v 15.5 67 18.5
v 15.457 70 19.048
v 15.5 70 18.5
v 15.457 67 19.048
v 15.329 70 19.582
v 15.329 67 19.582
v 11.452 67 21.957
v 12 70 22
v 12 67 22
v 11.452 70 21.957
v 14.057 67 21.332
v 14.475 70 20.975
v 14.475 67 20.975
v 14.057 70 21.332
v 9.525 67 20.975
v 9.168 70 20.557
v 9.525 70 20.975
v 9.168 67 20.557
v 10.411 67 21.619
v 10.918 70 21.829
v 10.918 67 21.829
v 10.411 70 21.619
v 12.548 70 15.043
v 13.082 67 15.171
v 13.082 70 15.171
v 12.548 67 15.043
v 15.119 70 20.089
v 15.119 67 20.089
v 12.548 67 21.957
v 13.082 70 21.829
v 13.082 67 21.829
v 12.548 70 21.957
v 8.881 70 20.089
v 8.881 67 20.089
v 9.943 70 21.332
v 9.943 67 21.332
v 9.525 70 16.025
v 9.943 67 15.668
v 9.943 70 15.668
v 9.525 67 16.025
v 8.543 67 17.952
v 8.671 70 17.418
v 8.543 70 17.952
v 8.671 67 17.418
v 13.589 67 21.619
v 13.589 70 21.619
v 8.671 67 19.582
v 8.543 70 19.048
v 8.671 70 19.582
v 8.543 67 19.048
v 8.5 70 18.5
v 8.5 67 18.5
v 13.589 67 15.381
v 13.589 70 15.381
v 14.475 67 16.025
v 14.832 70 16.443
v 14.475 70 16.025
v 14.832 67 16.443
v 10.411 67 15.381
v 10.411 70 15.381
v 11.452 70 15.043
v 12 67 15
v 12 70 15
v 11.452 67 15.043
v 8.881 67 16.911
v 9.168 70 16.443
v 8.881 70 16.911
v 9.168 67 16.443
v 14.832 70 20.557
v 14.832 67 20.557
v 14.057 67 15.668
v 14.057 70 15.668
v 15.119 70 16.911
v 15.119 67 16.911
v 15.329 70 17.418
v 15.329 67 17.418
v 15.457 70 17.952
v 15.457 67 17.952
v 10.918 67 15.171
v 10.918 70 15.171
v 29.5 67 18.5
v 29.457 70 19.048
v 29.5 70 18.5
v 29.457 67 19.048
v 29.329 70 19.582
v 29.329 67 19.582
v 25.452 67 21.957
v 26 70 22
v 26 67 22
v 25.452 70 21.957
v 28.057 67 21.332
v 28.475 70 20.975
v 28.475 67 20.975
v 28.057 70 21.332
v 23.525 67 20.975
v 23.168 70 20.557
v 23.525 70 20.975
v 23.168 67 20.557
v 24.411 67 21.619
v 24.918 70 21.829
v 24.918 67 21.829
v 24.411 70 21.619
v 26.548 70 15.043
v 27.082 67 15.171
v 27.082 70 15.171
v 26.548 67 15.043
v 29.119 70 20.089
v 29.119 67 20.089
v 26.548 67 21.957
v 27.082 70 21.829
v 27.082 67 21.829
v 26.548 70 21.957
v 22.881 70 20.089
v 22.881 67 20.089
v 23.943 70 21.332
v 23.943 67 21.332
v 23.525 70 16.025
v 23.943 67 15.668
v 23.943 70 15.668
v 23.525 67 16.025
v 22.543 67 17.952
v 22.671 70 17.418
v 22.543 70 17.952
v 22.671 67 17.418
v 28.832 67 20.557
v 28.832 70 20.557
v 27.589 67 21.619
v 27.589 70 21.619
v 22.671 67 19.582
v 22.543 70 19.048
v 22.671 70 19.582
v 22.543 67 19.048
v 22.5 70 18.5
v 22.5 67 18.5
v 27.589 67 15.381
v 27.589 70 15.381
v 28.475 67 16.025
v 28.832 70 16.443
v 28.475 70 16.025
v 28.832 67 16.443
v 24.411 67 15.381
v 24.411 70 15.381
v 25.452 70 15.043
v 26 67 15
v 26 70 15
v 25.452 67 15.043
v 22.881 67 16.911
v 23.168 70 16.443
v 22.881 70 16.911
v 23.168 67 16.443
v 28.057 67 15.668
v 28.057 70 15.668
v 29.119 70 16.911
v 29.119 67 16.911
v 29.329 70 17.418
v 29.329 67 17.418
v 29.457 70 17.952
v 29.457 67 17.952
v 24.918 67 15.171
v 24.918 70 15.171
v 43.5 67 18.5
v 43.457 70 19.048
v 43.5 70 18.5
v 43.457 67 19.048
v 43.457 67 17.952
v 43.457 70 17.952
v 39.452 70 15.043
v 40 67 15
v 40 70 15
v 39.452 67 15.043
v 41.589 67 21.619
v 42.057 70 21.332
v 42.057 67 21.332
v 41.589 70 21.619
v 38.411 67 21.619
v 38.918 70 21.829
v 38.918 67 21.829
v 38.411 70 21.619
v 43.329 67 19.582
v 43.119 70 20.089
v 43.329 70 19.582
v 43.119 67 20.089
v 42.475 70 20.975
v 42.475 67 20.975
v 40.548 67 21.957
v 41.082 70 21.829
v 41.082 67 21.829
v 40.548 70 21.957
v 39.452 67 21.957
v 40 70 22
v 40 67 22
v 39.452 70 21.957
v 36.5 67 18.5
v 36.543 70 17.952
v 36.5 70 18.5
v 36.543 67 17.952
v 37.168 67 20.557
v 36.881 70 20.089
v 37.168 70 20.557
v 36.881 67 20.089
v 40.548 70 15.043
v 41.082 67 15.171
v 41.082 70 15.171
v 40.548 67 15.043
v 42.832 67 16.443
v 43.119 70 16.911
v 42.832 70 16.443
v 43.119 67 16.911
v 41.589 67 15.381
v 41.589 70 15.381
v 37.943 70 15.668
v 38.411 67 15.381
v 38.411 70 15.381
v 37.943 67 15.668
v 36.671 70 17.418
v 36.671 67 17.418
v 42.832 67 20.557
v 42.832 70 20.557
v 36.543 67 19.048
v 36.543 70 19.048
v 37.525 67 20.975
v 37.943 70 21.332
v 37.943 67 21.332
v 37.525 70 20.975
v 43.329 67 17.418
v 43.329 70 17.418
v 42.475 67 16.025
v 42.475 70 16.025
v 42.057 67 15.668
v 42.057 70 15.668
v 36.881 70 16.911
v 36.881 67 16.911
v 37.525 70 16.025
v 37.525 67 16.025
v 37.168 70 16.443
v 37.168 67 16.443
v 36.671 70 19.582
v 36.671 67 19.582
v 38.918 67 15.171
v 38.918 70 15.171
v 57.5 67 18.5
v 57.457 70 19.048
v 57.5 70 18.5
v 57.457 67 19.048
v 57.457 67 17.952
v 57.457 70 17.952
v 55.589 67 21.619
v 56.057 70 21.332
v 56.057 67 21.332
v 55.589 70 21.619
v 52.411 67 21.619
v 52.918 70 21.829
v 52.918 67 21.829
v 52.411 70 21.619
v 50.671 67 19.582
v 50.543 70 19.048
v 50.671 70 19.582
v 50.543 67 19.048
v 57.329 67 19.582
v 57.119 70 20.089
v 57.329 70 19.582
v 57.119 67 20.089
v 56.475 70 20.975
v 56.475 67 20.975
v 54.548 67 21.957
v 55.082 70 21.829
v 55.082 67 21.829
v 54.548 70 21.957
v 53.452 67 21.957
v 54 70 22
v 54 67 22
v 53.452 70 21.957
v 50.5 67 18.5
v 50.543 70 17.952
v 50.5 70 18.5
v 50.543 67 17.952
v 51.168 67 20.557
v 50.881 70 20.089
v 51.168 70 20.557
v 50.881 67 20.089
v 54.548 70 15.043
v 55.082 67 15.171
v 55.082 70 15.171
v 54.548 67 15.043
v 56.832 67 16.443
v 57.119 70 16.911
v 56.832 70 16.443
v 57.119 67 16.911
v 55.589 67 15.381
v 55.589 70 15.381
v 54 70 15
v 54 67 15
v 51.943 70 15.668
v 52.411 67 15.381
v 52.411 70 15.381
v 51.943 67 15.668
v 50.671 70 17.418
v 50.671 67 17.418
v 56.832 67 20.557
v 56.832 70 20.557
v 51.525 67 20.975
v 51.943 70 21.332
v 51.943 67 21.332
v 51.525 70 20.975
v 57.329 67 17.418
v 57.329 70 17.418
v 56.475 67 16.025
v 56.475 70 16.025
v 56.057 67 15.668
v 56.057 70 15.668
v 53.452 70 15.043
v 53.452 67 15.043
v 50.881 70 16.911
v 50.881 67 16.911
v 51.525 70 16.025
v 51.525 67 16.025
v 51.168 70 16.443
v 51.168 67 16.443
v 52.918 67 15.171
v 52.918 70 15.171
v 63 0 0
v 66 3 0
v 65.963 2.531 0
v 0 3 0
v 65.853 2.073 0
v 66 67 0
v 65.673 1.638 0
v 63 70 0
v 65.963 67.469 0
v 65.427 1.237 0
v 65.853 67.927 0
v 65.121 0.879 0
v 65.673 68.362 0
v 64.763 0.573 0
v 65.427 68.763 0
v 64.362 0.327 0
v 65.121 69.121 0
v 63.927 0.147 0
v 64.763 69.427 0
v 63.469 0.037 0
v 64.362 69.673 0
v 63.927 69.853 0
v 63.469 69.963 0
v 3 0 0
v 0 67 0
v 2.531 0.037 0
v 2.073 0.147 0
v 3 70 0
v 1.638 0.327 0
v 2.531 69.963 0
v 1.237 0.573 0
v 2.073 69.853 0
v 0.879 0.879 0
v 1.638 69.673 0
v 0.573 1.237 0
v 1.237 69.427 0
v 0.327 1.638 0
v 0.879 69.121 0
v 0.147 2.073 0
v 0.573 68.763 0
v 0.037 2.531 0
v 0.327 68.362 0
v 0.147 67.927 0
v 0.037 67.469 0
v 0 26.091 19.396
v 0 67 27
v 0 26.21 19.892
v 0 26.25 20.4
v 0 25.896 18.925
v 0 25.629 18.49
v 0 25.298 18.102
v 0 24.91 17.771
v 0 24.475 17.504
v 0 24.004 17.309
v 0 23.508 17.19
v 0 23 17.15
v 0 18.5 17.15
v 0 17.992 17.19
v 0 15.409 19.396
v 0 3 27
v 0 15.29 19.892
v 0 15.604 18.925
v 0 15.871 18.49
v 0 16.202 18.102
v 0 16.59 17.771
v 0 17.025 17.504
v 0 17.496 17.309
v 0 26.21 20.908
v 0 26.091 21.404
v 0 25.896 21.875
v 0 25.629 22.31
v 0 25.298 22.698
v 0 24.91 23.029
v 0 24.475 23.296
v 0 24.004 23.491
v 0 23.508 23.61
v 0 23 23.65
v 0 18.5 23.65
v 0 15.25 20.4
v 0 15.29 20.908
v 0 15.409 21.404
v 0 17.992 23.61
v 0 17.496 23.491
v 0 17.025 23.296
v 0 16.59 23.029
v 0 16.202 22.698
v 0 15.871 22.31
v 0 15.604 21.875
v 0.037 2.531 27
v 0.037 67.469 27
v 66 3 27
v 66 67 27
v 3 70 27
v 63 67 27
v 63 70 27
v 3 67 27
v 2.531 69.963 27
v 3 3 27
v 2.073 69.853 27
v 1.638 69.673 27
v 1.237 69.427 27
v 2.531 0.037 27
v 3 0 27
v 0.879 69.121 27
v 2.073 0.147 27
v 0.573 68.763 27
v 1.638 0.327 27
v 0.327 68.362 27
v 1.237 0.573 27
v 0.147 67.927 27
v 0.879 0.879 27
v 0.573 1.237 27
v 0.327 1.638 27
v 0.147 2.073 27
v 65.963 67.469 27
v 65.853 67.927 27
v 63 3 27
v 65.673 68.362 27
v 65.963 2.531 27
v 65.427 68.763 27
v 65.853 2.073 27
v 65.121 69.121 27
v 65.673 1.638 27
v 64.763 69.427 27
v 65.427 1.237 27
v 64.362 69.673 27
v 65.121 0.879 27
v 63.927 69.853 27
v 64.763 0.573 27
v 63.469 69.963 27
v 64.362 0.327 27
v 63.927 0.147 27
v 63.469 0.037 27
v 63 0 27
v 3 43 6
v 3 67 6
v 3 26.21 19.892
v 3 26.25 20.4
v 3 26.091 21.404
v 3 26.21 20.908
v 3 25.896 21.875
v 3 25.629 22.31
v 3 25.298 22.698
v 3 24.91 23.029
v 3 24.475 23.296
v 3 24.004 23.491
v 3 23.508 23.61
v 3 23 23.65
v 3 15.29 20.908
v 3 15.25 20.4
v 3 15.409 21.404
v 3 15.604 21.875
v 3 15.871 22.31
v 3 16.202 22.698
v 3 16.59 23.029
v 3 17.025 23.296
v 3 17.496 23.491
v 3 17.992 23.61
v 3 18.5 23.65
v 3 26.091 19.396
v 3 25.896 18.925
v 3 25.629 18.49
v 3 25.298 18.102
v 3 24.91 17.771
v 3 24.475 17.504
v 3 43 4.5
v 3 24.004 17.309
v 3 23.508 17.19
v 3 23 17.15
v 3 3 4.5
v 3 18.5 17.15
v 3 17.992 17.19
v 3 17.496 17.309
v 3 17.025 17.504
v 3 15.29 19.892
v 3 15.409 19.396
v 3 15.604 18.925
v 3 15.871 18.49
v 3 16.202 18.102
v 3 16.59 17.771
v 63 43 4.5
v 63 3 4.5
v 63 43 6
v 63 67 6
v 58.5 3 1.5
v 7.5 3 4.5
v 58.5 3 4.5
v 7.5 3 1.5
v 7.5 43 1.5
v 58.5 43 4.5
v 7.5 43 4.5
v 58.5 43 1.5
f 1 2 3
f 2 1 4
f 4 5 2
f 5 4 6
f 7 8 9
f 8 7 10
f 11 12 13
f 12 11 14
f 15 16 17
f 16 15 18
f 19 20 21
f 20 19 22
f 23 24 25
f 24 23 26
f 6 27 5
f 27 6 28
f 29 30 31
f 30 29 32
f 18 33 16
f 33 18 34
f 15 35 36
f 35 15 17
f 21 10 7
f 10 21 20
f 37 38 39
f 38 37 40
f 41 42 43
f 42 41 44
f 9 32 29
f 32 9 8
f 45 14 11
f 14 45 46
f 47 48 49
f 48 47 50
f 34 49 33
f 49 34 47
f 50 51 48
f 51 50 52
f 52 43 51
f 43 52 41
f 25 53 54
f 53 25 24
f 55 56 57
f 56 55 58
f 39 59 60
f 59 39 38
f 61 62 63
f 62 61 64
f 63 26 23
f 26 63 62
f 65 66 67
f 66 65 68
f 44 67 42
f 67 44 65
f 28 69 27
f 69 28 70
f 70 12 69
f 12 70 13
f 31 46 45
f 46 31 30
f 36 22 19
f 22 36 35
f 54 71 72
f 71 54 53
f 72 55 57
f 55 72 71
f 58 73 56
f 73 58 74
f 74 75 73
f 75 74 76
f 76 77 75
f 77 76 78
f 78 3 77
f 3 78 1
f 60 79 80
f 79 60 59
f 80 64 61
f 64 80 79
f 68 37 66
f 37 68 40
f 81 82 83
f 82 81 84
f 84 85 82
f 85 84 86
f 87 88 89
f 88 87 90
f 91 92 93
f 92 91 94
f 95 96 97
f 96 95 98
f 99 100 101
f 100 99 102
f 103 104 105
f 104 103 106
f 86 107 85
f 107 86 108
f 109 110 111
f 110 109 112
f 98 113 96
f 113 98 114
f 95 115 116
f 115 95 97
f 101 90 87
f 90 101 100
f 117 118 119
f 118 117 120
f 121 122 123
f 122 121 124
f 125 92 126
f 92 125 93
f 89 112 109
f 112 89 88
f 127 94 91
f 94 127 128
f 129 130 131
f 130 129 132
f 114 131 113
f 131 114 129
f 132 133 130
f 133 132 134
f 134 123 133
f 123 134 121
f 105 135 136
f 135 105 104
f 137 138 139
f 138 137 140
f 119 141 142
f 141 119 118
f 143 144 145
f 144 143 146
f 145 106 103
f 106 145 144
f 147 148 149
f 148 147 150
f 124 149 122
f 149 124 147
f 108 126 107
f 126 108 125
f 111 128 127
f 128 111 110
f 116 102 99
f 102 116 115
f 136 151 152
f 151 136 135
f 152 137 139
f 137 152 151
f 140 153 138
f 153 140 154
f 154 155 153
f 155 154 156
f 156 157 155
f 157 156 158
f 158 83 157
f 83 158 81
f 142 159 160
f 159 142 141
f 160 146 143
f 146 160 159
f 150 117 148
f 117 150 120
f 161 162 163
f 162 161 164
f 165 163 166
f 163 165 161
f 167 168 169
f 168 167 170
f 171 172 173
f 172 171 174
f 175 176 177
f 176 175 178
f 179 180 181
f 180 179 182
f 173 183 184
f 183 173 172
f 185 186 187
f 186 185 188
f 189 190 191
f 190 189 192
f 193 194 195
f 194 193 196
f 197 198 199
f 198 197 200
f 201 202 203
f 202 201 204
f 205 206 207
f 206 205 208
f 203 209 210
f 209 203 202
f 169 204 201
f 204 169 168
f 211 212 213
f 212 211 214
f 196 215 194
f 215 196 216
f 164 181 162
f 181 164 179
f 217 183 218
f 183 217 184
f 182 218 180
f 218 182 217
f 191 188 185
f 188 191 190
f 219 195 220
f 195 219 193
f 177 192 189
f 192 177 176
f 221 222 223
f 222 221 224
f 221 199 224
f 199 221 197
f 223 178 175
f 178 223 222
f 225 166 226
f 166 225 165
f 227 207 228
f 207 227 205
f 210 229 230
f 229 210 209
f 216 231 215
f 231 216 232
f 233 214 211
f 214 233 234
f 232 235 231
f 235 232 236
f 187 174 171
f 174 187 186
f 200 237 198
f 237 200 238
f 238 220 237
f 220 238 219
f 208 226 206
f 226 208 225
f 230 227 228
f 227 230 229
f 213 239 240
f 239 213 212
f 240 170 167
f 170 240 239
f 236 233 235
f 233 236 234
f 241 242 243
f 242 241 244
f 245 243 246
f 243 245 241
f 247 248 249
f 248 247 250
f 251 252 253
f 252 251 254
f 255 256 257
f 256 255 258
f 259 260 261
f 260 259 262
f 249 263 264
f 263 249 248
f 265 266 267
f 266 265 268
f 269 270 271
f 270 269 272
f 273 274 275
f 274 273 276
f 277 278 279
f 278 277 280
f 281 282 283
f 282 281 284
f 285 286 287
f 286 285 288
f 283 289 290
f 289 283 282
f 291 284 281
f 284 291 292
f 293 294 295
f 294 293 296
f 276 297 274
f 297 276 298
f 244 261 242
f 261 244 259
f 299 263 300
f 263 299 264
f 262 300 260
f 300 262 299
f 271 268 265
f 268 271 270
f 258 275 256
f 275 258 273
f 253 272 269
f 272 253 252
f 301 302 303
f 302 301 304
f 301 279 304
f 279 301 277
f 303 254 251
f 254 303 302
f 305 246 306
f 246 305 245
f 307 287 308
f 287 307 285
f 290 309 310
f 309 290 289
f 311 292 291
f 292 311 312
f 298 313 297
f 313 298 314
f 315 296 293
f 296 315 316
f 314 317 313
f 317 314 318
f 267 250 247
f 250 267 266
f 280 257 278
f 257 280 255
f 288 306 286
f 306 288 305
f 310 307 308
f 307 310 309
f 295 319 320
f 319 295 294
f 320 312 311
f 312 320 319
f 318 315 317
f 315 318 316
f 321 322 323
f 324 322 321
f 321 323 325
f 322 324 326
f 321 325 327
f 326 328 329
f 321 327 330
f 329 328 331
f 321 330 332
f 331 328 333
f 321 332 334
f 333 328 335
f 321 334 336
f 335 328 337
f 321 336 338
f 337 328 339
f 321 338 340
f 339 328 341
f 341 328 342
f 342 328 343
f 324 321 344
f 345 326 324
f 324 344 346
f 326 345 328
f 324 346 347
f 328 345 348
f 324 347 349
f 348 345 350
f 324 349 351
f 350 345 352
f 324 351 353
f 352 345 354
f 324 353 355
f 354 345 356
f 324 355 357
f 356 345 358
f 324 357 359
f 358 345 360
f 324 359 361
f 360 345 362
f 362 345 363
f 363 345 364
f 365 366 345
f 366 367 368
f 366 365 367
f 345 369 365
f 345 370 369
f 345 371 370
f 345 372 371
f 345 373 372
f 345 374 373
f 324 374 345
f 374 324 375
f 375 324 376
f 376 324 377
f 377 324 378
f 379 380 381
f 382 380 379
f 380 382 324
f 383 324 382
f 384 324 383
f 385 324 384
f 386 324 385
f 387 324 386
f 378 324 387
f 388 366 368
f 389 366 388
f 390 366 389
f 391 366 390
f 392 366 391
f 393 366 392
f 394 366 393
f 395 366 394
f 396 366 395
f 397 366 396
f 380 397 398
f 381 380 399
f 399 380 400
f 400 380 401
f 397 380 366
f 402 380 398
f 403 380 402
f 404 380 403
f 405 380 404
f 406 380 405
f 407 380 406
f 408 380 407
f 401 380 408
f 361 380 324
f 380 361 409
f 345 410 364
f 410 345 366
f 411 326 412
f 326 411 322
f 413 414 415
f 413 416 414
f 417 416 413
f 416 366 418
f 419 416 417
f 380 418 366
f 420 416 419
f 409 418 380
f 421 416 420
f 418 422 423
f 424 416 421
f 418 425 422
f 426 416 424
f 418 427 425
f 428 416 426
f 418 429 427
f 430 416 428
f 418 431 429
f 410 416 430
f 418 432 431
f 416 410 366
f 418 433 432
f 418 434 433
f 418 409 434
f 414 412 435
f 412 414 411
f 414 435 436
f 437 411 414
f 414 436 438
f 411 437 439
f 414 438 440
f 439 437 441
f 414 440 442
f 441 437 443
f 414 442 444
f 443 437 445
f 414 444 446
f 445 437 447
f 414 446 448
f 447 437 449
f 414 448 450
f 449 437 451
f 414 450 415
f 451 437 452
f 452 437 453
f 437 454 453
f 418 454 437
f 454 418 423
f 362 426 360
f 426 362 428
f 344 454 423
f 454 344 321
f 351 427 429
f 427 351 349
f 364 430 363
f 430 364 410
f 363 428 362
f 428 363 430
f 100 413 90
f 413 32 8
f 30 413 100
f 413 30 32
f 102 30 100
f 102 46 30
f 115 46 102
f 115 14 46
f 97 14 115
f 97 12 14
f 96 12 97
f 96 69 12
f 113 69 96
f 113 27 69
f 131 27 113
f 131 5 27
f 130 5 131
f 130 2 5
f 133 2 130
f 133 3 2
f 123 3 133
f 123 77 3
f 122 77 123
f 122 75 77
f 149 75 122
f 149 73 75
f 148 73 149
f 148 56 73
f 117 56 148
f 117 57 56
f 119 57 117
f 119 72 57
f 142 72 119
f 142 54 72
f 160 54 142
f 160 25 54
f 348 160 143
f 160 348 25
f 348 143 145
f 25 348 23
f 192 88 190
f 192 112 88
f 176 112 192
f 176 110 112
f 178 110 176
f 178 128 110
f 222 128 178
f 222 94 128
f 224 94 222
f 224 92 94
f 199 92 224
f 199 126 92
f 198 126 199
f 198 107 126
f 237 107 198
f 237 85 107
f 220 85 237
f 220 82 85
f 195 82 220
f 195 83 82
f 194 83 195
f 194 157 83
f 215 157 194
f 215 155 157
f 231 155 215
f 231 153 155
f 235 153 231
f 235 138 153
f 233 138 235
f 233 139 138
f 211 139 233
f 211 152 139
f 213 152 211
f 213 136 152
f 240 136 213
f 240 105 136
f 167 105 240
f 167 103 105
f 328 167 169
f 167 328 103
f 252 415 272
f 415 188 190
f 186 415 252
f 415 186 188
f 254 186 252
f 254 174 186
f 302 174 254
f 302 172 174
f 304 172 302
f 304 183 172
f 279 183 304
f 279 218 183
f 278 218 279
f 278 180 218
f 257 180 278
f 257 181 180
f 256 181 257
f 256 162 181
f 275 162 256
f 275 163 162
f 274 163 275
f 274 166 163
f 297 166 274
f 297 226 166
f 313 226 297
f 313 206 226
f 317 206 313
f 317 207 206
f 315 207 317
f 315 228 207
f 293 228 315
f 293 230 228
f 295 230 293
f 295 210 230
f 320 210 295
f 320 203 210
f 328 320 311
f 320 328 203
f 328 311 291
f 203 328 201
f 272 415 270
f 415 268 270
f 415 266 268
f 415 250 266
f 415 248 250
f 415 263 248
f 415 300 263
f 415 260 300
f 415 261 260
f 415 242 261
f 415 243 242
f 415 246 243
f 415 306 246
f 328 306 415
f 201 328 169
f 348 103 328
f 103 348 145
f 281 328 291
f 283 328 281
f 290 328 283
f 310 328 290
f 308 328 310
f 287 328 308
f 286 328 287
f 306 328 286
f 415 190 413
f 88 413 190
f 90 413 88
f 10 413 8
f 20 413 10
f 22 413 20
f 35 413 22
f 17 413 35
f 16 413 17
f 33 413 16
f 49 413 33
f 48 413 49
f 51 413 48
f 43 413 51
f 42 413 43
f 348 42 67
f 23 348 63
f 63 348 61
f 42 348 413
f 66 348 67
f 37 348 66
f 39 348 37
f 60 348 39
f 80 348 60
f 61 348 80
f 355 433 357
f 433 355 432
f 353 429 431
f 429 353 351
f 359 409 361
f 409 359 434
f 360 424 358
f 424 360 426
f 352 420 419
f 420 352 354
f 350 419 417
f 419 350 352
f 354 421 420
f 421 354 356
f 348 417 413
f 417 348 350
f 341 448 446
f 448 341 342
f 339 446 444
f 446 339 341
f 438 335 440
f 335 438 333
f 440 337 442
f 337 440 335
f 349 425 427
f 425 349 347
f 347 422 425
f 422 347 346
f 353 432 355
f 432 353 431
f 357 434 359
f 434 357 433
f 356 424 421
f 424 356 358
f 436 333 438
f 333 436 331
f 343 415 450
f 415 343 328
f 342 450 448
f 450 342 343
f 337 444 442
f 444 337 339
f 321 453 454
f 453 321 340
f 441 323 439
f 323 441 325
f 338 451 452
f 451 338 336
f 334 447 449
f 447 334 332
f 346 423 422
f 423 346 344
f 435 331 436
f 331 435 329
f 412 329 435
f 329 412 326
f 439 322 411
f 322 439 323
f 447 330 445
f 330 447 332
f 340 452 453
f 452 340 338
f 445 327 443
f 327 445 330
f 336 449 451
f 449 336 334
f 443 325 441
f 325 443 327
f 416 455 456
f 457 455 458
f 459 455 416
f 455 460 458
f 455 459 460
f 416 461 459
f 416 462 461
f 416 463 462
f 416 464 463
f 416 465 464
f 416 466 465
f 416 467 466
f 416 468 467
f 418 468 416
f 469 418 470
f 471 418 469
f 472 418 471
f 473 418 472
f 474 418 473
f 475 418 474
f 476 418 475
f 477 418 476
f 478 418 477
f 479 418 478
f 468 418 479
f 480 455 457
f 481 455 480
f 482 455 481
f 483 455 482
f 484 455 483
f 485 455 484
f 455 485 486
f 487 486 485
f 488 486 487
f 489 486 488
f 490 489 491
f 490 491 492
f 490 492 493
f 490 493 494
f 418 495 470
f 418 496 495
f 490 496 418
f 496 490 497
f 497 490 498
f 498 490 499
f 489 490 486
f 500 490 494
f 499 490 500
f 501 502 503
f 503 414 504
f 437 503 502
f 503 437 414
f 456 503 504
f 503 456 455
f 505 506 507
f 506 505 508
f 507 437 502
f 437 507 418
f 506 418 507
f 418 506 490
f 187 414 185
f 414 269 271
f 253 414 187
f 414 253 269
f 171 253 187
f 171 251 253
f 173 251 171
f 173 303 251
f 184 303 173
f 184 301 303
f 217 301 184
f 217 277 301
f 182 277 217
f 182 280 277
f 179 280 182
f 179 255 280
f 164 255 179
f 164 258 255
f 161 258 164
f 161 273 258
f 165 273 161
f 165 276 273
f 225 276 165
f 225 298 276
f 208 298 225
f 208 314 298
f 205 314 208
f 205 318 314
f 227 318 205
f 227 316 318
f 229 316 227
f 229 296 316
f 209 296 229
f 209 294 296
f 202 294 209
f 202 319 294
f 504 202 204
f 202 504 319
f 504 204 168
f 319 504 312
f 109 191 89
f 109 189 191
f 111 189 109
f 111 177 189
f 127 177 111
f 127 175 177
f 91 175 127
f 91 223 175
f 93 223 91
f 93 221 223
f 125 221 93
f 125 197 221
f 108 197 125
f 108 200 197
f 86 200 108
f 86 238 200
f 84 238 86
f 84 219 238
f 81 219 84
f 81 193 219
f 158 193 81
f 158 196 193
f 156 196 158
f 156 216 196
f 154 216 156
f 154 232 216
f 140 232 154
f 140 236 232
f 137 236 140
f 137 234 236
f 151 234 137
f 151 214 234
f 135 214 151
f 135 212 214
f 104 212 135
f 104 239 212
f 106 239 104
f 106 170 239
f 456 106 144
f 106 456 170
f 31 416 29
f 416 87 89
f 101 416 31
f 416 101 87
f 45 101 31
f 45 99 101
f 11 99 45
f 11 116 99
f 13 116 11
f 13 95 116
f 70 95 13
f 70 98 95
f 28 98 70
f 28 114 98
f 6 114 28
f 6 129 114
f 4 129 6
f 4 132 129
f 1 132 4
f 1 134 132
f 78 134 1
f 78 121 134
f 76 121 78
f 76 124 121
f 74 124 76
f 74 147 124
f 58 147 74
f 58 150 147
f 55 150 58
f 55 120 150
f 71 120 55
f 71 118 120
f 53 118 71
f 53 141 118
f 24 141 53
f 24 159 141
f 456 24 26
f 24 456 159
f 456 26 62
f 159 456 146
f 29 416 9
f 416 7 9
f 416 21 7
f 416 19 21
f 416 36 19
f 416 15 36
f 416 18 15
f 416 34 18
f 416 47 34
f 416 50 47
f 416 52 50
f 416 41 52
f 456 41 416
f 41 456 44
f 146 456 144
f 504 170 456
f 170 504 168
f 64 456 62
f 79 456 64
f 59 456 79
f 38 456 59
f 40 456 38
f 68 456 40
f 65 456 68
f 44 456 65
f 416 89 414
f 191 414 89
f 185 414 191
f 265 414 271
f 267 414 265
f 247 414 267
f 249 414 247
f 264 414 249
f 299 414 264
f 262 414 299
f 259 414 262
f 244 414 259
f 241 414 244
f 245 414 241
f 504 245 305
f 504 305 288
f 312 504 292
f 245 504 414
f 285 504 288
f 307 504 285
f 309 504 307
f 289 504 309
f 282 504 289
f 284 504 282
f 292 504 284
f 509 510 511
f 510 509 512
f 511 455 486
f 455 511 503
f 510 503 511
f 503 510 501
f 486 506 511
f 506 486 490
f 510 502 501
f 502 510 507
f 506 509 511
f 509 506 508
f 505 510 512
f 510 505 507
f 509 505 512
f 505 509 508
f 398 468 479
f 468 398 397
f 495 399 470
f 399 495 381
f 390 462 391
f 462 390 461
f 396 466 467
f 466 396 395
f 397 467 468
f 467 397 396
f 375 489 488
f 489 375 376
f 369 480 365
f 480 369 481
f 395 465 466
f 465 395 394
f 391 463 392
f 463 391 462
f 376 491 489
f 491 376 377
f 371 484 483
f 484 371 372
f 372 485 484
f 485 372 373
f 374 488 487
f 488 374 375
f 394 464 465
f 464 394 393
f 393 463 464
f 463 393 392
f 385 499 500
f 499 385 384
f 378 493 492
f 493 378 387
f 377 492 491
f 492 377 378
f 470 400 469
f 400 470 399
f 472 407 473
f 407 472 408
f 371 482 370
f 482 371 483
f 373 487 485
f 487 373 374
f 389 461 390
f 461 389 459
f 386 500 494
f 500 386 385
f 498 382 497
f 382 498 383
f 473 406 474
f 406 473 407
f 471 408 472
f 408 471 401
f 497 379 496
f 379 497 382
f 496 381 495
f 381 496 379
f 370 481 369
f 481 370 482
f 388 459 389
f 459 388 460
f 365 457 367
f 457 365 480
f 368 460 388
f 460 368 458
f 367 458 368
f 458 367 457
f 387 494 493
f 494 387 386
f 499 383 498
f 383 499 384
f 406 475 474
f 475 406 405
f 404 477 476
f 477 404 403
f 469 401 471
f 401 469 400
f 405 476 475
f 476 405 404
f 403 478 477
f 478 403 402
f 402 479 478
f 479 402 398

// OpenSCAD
$fn=40;

Width_y = 70;
Height = 27;
Wall = 3;
Bottom = 1.5;

PCB_Width_x = 60;
PCB_Width_y = 40;
PCB_Height = 1.5;
PCB_Offset_z = 3;
PCB_Holder = 4.5;

Cable_Diameter = 7;
Cable_Distance = 7;
Cable_Offset_z = Height/2+5;
CableCount = 4;

USBConnector_Width = 11;
USBConnector_Height = 6.5;
USBConnector_Offset_y = Wall + USBConnector_Height/2 + 3 + 9.25;
USBConnector_Offset_z = 15.9 + PCB_Offset_z + Bottom;

Width_x = PCB_Width_x + 2*Wall;
Cable_Offset_x = (Width_x-Cable_Diameter*CableCount-Cable_Distance*(CableCount-1))/2;
echo("Cable Offset X: ", Cable_Offset_x);
rounded_box();

module rounded_box() {
    difference() {
        hull() {
            translate([Wall, Wall, 0])
                cylinder(h = Height, r = Wall);
            translate([Wall, Width_y-Wall, 0])
                cylinder(h = Height, r = Wall);
            translate([Width_x-Wall, Wall, 0])
                cylinder(h = Height, r = Wall);
            translate([Width_x-Wall, Width_y-Wall, 0])
                cylinder(h = Height, r = Wall);
        }
        translate([Wall, Wall, Bottom+PCB_Height + PCB_Offset_z])
            cube([Width_x-2*Wall, Width_y-2*Wall, Height]);
        translate([Wall, Wall, Bottom + PCB_Offset_z])
            cube([Width_x-2*Wall, PCB_Width_y, PCB_Height]);
        translate([Wall+PCB_Holder, Wall, Bottom])
            cube([PCB_Width_x-2*PCB_Holder, PCB_Width_y, PCB_Offset_z]);

        for (i = [0 : CableCount - 1]) {
            translate([Cable_Offset_x + i * (Cable_Diameter + Cable_Distance) + Cable_Diameter/2, Width_y+1, Cable_Offset_z])
                rotate([90, 0, 0])
                    cylinder(h = 10, d = Cable_Diameter);
        }
        // translate([30, 0,0])
        //     cube([100, 100, 100]);

        usbConnector();
    }
}

module usbConnector() {
    translate([0, USBConnector_Offset_y, USBConnector_Offset_z])
    rotate([0, 90, 0]) {
        hull() {
            translate([0, 0, -1])
                cylinder(h = 10, d = USBConnector_Height);
            translate([0, USBConnector_Width - USBConnector_Height, -1])
                cylinder(h = 10, d = USBConnector_Height);
        }
    }
}
